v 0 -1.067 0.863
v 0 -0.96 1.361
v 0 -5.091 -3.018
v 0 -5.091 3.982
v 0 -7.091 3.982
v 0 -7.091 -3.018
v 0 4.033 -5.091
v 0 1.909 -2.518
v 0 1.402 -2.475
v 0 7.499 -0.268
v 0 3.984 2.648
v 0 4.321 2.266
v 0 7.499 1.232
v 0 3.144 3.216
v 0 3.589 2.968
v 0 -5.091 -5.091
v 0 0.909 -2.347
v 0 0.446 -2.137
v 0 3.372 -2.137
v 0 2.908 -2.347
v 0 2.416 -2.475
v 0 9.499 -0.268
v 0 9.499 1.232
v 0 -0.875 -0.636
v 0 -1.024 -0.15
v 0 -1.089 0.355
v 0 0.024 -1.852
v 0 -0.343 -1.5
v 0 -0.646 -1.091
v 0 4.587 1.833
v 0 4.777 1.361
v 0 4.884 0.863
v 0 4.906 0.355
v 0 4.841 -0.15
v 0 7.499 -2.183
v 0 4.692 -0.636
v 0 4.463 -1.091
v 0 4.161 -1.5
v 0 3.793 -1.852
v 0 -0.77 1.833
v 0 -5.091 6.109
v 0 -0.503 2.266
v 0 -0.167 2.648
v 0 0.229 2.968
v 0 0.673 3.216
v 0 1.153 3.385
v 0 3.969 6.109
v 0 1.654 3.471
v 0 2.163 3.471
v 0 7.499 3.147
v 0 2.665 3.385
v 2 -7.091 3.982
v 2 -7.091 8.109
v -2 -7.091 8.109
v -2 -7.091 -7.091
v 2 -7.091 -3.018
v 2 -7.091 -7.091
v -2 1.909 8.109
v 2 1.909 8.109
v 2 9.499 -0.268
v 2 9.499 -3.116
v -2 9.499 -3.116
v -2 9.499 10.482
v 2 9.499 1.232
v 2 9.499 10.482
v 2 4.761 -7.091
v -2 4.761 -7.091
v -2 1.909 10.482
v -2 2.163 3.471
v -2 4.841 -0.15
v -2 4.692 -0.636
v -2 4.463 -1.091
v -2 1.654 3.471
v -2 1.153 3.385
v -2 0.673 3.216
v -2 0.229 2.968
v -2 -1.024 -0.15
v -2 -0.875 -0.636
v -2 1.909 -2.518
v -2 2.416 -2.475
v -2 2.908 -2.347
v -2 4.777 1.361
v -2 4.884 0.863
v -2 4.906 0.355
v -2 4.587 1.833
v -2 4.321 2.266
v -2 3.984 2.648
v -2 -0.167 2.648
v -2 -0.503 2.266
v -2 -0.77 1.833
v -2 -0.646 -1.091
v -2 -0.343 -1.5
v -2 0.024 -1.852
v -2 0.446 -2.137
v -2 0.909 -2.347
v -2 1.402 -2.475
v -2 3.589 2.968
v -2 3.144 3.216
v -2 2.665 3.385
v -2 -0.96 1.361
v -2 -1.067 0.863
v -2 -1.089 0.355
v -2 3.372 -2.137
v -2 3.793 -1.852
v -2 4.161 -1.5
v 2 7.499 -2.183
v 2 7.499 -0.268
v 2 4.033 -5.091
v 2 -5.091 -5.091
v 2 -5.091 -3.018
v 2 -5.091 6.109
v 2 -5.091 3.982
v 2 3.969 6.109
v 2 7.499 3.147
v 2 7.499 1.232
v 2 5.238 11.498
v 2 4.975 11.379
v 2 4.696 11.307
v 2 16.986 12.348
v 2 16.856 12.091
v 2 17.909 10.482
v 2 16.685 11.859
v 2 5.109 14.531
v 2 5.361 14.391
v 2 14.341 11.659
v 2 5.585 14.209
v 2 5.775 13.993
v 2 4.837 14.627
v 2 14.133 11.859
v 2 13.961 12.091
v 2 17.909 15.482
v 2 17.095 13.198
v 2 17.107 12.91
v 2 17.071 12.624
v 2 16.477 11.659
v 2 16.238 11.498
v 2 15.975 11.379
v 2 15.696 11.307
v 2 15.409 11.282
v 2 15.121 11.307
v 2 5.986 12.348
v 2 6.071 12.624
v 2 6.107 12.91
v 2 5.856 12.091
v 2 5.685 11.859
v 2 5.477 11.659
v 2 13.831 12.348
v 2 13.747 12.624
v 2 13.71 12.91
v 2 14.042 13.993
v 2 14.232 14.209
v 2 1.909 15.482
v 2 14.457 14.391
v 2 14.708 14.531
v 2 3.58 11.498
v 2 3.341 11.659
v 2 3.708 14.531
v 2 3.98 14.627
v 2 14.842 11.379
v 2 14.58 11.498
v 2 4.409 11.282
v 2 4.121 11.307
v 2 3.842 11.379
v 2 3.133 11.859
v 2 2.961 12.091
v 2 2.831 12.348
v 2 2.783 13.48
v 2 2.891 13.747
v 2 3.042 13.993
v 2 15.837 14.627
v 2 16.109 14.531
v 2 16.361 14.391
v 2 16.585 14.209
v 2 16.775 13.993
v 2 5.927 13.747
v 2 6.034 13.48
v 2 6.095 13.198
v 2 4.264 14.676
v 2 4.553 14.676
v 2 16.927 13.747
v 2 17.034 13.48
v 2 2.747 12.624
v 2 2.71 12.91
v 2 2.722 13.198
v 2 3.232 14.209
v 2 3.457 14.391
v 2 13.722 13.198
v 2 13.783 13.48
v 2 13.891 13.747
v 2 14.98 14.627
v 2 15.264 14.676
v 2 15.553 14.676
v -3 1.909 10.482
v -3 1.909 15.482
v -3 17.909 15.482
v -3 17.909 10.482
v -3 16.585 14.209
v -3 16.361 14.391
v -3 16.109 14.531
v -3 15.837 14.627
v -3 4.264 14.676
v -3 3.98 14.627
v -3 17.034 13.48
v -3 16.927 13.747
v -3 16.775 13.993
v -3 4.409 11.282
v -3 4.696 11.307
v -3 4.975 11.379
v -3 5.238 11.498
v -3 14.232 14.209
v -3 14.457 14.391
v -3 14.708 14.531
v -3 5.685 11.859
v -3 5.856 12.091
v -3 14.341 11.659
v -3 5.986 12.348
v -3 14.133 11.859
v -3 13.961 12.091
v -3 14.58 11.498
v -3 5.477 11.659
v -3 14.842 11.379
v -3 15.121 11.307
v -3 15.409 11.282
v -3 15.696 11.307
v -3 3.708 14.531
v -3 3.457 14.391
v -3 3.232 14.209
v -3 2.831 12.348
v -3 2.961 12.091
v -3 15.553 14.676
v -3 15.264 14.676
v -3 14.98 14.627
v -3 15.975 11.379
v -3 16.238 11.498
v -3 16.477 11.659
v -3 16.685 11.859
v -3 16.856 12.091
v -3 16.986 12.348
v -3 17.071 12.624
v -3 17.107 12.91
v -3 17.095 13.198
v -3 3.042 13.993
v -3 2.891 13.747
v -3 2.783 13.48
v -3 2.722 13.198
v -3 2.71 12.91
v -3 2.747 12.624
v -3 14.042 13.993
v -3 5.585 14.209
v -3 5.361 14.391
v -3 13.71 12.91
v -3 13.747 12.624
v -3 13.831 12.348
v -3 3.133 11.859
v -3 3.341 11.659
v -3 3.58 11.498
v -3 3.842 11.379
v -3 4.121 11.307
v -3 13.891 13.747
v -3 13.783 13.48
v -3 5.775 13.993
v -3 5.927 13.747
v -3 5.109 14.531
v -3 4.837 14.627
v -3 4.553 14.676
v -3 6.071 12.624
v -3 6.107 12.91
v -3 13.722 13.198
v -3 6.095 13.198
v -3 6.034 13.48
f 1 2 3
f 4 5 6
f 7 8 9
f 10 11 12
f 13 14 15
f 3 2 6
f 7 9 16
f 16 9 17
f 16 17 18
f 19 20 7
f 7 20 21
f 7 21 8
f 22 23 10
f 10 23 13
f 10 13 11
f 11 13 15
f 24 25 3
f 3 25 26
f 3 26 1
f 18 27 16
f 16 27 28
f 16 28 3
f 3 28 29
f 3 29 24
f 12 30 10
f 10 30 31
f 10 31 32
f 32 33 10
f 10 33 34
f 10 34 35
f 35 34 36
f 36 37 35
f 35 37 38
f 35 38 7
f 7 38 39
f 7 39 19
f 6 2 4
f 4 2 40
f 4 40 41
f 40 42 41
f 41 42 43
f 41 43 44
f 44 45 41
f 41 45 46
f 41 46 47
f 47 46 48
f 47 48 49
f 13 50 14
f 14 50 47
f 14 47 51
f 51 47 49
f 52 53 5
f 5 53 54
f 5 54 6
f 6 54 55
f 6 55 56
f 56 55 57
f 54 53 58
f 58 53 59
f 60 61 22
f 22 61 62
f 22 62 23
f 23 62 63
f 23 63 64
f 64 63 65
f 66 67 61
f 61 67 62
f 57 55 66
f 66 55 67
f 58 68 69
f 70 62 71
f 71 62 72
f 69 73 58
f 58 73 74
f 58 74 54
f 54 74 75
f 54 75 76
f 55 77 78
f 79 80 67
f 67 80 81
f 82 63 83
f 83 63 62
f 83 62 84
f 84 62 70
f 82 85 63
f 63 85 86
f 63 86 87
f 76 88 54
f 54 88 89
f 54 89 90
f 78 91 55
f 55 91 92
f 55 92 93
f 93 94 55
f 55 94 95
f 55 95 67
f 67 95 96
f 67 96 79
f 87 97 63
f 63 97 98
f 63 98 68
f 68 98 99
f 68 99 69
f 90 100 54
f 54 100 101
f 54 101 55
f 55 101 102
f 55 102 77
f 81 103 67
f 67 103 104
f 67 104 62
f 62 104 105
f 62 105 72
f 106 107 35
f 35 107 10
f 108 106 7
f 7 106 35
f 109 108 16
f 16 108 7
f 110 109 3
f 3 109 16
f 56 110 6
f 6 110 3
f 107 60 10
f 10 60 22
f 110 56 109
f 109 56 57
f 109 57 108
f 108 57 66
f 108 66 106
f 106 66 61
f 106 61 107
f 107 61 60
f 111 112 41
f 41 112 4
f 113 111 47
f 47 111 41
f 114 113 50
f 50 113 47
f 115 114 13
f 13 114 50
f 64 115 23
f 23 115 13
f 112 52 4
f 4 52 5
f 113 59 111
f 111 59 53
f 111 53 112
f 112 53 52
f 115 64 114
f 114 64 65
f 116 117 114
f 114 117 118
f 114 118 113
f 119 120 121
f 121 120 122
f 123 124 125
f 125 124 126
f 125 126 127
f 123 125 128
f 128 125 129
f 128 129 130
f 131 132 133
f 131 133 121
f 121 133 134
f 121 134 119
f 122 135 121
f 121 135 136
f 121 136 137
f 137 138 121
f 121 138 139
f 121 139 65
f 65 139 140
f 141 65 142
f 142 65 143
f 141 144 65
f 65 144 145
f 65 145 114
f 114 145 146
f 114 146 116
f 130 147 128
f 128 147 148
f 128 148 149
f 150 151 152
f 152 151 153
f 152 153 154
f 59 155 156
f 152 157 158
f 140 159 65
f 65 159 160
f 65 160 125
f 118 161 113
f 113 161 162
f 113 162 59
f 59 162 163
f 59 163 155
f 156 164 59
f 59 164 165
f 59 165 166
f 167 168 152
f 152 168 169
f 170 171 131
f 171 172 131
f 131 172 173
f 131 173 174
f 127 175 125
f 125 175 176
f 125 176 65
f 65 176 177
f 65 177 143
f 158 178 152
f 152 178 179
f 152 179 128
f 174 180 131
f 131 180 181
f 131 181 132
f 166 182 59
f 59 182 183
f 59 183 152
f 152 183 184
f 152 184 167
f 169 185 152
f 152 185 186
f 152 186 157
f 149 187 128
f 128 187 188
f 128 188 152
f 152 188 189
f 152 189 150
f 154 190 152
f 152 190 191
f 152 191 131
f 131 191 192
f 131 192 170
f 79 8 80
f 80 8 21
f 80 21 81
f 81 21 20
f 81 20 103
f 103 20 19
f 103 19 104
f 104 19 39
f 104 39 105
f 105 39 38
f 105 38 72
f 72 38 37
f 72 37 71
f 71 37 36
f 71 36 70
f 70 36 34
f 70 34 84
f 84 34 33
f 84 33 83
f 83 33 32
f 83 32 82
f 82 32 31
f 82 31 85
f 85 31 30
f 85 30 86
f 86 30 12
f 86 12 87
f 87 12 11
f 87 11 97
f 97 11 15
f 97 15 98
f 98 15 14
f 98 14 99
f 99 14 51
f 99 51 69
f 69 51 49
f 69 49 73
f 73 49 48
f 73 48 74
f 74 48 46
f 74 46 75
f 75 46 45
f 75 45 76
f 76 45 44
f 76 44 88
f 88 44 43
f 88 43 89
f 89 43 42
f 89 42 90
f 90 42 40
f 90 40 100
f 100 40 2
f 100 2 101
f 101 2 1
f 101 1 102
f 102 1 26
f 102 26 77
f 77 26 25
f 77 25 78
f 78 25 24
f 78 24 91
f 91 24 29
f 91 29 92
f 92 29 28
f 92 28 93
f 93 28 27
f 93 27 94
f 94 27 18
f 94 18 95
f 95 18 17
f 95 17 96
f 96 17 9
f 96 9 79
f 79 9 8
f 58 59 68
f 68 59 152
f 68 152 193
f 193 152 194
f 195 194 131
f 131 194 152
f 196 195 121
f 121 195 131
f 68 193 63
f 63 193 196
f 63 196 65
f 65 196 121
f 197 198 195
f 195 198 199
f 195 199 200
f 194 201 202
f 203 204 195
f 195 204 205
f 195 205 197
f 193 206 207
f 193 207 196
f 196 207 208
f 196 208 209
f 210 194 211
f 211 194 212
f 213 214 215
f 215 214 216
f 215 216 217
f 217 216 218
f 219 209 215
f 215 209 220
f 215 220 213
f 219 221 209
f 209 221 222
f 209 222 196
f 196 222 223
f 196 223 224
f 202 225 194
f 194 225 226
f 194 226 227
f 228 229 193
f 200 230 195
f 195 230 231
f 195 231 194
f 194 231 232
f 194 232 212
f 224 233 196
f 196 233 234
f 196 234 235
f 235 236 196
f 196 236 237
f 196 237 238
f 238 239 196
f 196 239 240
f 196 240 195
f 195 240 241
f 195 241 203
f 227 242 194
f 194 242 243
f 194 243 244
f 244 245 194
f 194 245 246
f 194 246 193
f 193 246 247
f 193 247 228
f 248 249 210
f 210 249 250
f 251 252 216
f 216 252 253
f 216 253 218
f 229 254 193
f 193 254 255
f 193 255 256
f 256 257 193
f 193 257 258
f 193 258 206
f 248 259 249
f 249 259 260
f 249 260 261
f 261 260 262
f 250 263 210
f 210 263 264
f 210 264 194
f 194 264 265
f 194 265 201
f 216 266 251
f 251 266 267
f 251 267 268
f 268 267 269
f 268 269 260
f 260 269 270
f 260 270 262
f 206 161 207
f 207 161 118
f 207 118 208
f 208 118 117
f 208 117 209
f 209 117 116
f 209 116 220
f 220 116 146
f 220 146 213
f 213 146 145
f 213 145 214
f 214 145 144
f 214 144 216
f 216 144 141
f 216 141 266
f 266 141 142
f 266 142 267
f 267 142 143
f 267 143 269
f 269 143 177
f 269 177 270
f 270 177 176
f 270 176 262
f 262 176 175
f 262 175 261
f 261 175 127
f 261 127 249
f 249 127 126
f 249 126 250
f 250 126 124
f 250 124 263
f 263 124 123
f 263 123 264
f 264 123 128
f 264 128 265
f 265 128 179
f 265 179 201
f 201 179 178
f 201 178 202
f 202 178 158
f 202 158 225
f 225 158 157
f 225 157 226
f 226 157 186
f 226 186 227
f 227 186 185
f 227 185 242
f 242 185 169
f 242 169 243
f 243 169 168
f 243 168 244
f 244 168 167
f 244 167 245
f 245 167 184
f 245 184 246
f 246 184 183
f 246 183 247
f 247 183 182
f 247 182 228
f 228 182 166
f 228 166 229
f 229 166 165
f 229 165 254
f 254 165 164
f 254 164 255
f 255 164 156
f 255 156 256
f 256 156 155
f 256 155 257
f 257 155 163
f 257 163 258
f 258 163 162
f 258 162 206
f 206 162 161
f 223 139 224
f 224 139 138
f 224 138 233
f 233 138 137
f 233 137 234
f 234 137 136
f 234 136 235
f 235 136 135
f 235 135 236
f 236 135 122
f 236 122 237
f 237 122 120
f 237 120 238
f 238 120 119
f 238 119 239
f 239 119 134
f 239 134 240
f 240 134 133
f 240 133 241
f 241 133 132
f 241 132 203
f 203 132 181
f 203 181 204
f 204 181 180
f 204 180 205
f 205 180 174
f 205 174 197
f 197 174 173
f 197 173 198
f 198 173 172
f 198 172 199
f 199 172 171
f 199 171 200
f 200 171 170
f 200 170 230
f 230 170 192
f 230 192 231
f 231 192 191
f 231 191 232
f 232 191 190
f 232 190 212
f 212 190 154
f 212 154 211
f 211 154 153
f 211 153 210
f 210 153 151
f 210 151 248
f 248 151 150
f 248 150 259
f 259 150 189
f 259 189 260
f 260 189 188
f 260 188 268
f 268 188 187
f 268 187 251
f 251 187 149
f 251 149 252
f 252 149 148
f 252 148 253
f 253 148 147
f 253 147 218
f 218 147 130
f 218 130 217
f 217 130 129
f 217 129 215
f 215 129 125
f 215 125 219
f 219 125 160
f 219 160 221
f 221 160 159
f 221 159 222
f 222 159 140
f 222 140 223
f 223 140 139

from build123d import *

# Parameters (mm, degrees)
BOSS_EXTRUDE1_DEPTH = 2
BOSS_EXTRUDE2_DEPTH = 2
SKETCH3_R           = 3
CUT_EXTRUDE1_DEPTH  = 2
SKETCH4_R           = 1.7
BOSS_EXTRUDE3_DEPTH = 5
CUT_EXTRUDE2_DEPTH  = 1


with BuildPart() as part:
    # Sketch2 → Boss-Extrude1 (new body)
    with BuildSketch(Plane(origin=(0, 0, 0), x_dir=(0, 0, -1), z_dir=(1, 0, 0))):
        Polygon((-8.109308511, -7.091340238), (-8.109308511, 4.696600231), (-4.079902129, 9.498659762), (3.11566899, 9.498659762), (7.090691489, 4.761412419), (7.090691489, -7.091340238), align=None)
    extrude(amount=-BOSS_EXTRUDE1_DEPTH)

    # Sketch1 → Boss-Extrude2 (add)
    with BuildSketch(Plane(origin=(0, 0, 0), x_dir=(0, 0, -1), z_dir=(1, 0, 0))):
        Polygon((-6.109308511, 3.968659762), (-3.147286813, 7.498659762), (-1.232116569, 7.498659762), (-1.232116569, 9.498659762), (-4.079902129, 9.498659762), (-8.109308511, 4.696600231), (-8.109308511, -7.091340238), (-3.982116569, -7.091340238), (-3.982116569, -5.091340238), (-6.109308511, -5.091340238), align=None)
        Polygon((5.090691489, 4.03347195), (5.090691489, -5.091340238), (3.017883431, -5.091340238), (3.017883431, -7.091340238), (7.090691489, -7.091340238), (7.090691489, 4.761412419), (3.11566899, 9.498659762), (0.267883431, 9.498659762), (0.267883431, 7.498659762), (2.183053674, 7.498659762), align=None)
    extrude(amount=BOSS_EXTRUDE2_DEPTH)

    # Sketch3 → Cut-Extrude1 (cut)
    with BuildSketch(Plane(origin=(0, 0, 0), x_dir=(0, 0, -1), z_dir=(1, 0, 0))):
        with Locations((-0.482116569, 1.908659762)):
            Circle(SKETCH3_R)
    extrude(amount=-CUT_EXTRUDE1_DEPTH, mode=Mode.SUBTRACT)

    # Sketch4 → Boss-Extrude3 (add)
    with BuildSketch(Plane(origin=(2, 0, 0), x_dir=(0, 0, -1), z_dir=(1, 0, 0))):
        Polygon((-15.482116569, 1.908659762), (-8.109308511, 1.908659762), (-8.109308511, 4.696600231), (-4.079902129, 9.498659762), (-10.482116569, 9.498659762), (-10.482116569, 17.908659762), (-15.482116569, 17.908659762), align=None)
        with Locations((-12.982116569, 4.408659762)):
            Circle(SKETCH4_R, mode=Mode.SUBTRACT)
        with Locations((-12.982116569, 15.408659762)):
            Circle(SKETCH4_R, mode=Mode.SUBTRACT)
    extrude(amount=-BOSS_EXTRUDE3_DEPTH)

    # Sketch5 → Cut-Extrude2 (cut)
    with BuildSketch(Plane.ZY.offset(3)):
        Polygon((10.482116569, 9.498659762), (10.482116569, 1.908659762), (8.109308511, 1.908659762), (8.109308511, 4.696600231), (4.079902129, 9.498659762), align=None)
    extrude(amount=-CUT_EXTRUDE2_DEPTH, mode=Mode.SUBTRACT)


solid = part.part
